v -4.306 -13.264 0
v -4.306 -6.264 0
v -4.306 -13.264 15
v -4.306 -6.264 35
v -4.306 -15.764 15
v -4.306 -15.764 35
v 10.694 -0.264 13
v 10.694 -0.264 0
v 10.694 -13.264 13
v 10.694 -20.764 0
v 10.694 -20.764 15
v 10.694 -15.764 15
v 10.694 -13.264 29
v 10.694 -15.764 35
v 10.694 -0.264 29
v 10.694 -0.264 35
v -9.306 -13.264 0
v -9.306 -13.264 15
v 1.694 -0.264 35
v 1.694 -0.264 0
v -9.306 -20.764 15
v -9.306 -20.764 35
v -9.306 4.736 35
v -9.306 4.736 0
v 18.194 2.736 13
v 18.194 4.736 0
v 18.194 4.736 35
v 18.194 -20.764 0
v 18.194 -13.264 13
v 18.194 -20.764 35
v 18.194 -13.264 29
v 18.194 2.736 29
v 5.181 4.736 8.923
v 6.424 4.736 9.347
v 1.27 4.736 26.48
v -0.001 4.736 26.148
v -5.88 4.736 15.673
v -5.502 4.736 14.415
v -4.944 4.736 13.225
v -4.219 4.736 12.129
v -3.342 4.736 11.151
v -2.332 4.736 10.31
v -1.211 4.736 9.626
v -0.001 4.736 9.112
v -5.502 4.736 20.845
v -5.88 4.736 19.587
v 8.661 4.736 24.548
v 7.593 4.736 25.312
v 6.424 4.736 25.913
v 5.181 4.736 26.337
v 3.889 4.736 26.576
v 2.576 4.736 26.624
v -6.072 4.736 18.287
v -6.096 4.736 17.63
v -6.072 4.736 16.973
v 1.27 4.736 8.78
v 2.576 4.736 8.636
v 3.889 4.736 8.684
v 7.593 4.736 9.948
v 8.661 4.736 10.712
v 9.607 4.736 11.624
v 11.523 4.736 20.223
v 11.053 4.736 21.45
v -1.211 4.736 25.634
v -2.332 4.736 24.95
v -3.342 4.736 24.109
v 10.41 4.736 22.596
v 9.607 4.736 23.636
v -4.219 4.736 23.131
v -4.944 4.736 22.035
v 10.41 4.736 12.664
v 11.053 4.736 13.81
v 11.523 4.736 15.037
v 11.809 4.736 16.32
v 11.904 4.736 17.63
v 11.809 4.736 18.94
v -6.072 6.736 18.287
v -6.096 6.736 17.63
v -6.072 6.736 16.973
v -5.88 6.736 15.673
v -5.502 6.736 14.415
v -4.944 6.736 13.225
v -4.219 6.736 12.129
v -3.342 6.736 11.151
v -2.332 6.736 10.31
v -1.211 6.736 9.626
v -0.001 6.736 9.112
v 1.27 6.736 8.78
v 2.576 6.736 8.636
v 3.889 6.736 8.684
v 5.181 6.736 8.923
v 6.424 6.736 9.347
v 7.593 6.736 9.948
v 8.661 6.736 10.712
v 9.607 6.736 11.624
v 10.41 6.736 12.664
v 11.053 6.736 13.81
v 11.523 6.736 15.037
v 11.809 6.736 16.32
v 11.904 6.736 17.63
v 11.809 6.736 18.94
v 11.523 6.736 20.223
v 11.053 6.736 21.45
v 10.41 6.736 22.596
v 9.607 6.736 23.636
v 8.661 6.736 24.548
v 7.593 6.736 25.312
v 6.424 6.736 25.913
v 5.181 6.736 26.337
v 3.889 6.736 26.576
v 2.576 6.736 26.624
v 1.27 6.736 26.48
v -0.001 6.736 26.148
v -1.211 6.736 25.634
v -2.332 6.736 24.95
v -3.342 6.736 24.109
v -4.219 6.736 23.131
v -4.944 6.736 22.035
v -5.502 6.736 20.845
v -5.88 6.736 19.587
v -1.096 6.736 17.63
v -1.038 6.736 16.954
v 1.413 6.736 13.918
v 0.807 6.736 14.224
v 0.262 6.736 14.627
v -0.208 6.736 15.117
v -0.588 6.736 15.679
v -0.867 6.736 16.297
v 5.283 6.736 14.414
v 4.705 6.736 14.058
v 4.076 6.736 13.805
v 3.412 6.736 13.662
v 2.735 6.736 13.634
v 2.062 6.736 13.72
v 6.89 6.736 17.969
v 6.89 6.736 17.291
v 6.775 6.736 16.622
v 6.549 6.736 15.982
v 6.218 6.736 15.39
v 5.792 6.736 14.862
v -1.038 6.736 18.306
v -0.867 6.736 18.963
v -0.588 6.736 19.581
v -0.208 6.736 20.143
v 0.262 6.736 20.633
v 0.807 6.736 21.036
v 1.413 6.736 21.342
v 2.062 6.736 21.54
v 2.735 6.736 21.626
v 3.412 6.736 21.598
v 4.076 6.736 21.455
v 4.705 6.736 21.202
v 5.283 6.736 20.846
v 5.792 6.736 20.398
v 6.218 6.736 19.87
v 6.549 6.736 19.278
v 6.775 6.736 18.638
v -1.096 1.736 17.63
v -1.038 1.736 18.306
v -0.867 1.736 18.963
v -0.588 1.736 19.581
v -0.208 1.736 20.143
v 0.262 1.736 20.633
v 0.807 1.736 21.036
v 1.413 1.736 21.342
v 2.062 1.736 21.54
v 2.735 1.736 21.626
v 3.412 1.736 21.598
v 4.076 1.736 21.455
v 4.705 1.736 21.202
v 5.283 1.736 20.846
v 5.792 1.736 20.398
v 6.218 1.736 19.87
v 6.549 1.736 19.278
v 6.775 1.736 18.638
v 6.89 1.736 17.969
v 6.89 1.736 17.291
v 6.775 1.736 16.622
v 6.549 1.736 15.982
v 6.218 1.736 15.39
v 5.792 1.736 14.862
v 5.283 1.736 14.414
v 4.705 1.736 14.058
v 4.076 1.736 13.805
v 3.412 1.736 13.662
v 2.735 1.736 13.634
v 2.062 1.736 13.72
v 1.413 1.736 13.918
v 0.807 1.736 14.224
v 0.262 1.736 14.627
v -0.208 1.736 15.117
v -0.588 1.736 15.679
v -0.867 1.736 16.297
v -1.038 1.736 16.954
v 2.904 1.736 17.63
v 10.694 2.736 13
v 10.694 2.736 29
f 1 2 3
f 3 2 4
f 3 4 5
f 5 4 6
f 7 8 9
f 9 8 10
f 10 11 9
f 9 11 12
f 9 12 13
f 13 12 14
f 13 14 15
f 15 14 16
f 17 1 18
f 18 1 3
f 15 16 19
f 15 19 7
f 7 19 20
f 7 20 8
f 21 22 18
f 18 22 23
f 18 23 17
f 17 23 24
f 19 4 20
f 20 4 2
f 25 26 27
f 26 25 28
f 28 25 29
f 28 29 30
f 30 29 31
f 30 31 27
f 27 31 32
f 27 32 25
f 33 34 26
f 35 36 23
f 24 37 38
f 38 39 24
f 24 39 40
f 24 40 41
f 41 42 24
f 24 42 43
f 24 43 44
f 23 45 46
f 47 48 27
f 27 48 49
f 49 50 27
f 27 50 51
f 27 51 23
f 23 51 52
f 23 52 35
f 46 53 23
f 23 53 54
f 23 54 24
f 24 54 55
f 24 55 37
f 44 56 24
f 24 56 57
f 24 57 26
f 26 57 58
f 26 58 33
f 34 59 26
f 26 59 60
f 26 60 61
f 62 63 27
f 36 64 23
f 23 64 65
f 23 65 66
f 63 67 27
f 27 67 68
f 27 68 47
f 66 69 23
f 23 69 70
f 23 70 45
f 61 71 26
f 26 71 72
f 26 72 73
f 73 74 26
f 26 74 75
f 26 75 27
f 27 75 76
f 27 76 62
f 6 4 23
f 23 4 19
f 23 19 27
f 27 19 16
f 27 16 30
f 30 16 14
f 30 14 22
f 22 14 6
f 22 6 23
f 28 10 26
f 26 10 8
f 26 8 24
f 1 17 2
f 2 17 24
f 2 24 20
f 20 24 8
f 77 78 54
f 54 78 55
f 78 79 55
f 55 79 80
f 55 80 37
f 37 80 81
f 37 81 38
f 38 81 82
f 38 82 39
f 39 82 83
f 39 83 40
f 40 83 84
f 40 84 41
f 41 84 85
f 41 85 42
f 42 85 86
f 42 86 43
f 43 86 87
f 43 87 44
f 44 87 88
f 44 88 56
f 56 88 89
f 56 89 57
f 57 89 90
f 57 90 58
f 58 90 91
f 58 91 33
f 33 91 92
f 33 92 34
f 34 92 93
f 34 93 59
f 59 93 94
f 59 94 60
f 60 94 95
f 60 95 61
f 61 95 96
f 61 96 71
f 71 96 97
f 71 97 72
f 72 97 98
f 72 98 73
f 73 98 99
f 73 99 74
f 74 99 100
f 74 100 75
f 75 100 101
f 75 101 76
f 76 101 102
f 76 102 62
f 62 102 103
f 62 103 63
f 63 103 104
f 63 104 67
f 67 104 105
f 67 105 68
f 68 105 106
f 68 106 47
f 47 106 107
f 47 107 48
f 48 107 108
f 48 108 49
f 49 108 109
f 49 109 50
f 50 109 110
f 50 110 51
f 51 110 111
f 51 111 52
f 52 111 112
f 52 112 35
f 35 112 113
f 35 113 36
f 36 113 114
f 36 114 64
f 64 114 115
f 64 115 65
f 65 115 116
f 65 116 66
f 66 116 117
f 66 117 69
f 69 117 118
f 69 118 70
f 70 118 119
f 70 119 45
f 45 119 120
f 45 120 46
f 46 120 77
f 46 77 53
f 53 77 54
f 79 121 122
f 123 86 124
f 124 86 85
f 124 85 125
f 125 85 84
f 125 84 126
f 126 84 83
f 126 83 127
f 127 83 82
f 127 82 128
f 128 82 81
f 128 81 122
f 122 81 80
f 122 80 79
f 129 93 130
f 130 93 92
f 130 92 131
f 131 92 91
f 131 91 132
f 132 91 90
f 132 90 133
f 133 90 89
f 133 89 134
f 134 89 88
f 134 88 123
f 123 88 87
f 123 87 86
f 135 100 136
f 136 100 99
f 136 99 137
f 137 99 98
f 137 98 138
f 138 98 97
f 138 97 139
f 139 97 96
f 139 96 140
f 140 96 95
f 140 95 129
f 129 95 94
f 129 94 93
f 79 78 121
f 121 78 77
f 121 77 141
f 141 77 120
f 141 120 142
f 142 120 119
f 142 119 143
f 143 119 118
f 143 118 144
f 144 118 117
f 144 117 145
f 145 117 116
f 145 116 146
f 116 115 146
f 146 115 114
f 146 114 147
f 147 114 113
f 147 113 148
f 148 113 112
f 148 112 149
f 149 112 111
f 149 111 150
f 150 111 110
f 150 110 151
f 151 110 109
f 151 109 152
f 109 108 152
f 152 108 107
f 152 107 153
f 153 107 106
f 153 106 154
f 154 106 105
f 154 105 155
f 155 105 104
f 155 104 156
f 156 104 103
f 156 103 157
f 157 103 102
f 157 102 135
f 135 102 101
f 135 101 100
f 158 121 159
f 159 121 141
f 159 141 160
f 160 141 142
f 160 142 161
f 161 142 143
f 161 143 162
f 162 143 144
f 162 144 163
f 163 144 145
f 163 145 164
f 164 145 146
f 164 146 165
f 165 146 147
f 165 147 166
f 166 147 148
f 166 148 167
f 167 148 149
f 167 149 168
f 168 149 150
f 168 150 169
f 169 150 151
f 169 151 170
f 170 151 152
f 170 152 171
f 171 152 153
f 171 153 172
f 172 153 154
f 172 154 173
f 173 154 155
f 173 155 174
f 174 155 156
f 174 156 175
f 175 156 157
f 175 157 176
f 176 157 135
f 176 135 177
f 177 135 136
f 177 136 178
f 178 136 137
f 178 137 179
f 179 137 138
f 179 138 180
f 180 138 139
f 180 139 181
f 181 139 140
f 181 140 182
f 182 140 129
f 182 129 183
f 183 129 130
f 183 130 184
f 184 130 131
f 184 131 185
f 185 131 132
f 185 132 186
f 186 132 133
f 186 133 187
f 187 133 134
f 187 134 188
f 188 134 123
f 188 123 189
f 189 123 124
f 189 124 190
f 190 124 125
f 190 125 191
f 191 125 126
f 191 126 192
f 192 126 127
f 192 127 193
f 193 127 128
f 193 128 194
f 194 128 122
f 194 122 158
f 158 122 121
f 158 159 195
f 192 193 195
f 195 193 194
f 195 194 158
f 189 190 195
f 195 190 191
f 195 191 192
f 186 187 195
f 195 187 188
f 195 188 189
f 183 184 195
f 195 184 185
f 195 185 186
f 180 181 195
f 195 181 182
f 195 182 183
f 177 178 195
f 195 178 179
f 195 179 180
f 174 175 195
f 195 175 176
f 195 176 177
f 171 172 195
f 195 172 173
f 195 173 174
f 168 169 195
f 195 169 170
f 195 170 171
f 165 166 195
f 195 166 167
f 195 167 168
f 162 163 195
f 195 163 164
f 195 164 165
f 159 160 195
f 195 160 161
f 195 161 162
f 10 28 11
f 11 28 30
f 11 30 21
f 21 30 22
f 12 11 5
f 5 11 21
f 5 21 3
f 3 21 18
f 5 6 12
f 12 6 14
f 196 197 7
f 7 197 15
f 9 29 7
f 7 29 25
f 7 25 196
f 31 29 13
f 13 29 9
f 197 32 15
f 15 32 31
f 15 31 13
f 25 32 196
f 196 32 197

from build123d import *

# Parameters (mm, degrees)
BOSS_EXTRUDE1_DEPTH = 35
SKETCH2_R           = 9
BOSS_EXTRUDE2_DEPTH = 2
SKETCH3_R           = 4
CUT_EXTRUDE1_DEPTH  = 5
SKETCH4_W           = 7.5
SKETCH4_H           = 35
BOSS_EXTRUDE3_DEPTH = 20.5
BOSS_EXTRUDE4_START = -7.5
SKETCH6_W           = 5
SKETCH6_H           = 25.5
BOSS_EXTRUDE4_DEPTH = 7.5
SKETCH7_W           = 5
SKETCH7_H           = 20
BOSS_EXTRUDE5_DEPTH = 7.5
SKETCH8_W           = 20
SKETCH8_H           = 5
BOSS_EXTRUDE6_DEPTH = 15
SKETCH10_W          = 16
SKETCH10_H          = 16
CUT_EXTRUDE2_DEPTH  = 7.5


with BuildPart() as part:
    # Sketch1 → Boss-Extrude1 (new body)
    with BuildSketch(Plane.XY):
        Polygon((-9.305574102, 4.73561153), (18.194425898, 4.73561153), (18.194425898, -0.26438847), (1.694425898, -0.26438847), (-4.305574102, -6.26438847), (-4.305574102, -13.26438847), (-9.305574102, -13.26438847), align=None)
    extrude(amount=BOSS_EXTRUDE1_DEPTH)

    # Sketch2 → Boss-Extrude2 (add)
    with BuildSketch(Plane(origin=(0, 4.73561153, 0), x_dir=(1, 0, 0), z_dir=(0, 1, 0))):
        with Locations((2.904425898, -17.63)):
            Circle(SKETCH2_R)
    extrude(amount=BOSS_EXTRUDE2_DEPTH)

    # Sketch3 → Cut-Extrude1 (cut)
    with BuildSketch(Plane(origin=(0, 6.73561153, 0), x_dir=(1, 0, 0), z_dir=(0, 1, 0))):
        with Locations((2.904425898, -17.63)):
            Circle(SKETCH3_R)
    extrude(amount=-CUT_EXTRUDE1_DEPTH, mode=Mode.SUBTRACT)

    # Sketch4 → Boss-Extrude3 (add)
    with BuildSketch(Plane.XZ.offset(0.26438847)):
        with Locations((14.444425898, 17.5)):
            Rectangle(SKETCH4_W, SKETCH4_H)
    extrude(amount=BOSS_EXTRUDE3_DEPTH)

    # Sketch6 → Boss-Extrude4 (add)
    with BuildSketch(Plane(origin=(18.194425898, 0, 0), x_dir=(0, 0, -1), z_dir=(1, 0, 0)).offset(BOSS_EXTRUDE4_START)):
        with Locations((-2.5, -8.01438847)):
            Rectangle(SKETCH6_W, SKETCH6_H)
    extrude(amount=BOSS_EXTRUDE4_DEPTH)

    # Sketch7 → Boss-Extrude5 (add)
    with BuildSketch(Plane.XZ.offset(13.26438847)):
        with Locations((-6.805574102, 25)):
            Rectangle(SKETCH7_W, SKETCH7_H)
    extrude(amount=BOSS_EXTRUDE5_DEPTH)

    # Sketch8 → Boss-Extrude6 (add)
    with BuildSketch(Plane(origin=(-4.305574102, 0, 0), x_dir=(0, 0, -1), z_dir=(1, 0, 0))):
        with Locations((-25, -18.26438847)):
            Rectangle(SKETCH8_W, SKETCH8_H)
    extrude(amount=BOSS_EXTRUDE6_DEPTH)

    # Sketch10 → Cut-Extrude2 (cut)
    with BuildSketch(Plane(origin=(18.194425898, 0, 0), x_dir=(0, 0, -1), z_dir=(1, 0, 0))):
        with Locations((-21, -5.26438847)):
            Rectangle(SKETCH10_W, SKETCH10_H)
    extrude(amount=-CUT_EXTRUDE2_DEPTH, mode=Mode.SUBTRACT)


solid = part.part
